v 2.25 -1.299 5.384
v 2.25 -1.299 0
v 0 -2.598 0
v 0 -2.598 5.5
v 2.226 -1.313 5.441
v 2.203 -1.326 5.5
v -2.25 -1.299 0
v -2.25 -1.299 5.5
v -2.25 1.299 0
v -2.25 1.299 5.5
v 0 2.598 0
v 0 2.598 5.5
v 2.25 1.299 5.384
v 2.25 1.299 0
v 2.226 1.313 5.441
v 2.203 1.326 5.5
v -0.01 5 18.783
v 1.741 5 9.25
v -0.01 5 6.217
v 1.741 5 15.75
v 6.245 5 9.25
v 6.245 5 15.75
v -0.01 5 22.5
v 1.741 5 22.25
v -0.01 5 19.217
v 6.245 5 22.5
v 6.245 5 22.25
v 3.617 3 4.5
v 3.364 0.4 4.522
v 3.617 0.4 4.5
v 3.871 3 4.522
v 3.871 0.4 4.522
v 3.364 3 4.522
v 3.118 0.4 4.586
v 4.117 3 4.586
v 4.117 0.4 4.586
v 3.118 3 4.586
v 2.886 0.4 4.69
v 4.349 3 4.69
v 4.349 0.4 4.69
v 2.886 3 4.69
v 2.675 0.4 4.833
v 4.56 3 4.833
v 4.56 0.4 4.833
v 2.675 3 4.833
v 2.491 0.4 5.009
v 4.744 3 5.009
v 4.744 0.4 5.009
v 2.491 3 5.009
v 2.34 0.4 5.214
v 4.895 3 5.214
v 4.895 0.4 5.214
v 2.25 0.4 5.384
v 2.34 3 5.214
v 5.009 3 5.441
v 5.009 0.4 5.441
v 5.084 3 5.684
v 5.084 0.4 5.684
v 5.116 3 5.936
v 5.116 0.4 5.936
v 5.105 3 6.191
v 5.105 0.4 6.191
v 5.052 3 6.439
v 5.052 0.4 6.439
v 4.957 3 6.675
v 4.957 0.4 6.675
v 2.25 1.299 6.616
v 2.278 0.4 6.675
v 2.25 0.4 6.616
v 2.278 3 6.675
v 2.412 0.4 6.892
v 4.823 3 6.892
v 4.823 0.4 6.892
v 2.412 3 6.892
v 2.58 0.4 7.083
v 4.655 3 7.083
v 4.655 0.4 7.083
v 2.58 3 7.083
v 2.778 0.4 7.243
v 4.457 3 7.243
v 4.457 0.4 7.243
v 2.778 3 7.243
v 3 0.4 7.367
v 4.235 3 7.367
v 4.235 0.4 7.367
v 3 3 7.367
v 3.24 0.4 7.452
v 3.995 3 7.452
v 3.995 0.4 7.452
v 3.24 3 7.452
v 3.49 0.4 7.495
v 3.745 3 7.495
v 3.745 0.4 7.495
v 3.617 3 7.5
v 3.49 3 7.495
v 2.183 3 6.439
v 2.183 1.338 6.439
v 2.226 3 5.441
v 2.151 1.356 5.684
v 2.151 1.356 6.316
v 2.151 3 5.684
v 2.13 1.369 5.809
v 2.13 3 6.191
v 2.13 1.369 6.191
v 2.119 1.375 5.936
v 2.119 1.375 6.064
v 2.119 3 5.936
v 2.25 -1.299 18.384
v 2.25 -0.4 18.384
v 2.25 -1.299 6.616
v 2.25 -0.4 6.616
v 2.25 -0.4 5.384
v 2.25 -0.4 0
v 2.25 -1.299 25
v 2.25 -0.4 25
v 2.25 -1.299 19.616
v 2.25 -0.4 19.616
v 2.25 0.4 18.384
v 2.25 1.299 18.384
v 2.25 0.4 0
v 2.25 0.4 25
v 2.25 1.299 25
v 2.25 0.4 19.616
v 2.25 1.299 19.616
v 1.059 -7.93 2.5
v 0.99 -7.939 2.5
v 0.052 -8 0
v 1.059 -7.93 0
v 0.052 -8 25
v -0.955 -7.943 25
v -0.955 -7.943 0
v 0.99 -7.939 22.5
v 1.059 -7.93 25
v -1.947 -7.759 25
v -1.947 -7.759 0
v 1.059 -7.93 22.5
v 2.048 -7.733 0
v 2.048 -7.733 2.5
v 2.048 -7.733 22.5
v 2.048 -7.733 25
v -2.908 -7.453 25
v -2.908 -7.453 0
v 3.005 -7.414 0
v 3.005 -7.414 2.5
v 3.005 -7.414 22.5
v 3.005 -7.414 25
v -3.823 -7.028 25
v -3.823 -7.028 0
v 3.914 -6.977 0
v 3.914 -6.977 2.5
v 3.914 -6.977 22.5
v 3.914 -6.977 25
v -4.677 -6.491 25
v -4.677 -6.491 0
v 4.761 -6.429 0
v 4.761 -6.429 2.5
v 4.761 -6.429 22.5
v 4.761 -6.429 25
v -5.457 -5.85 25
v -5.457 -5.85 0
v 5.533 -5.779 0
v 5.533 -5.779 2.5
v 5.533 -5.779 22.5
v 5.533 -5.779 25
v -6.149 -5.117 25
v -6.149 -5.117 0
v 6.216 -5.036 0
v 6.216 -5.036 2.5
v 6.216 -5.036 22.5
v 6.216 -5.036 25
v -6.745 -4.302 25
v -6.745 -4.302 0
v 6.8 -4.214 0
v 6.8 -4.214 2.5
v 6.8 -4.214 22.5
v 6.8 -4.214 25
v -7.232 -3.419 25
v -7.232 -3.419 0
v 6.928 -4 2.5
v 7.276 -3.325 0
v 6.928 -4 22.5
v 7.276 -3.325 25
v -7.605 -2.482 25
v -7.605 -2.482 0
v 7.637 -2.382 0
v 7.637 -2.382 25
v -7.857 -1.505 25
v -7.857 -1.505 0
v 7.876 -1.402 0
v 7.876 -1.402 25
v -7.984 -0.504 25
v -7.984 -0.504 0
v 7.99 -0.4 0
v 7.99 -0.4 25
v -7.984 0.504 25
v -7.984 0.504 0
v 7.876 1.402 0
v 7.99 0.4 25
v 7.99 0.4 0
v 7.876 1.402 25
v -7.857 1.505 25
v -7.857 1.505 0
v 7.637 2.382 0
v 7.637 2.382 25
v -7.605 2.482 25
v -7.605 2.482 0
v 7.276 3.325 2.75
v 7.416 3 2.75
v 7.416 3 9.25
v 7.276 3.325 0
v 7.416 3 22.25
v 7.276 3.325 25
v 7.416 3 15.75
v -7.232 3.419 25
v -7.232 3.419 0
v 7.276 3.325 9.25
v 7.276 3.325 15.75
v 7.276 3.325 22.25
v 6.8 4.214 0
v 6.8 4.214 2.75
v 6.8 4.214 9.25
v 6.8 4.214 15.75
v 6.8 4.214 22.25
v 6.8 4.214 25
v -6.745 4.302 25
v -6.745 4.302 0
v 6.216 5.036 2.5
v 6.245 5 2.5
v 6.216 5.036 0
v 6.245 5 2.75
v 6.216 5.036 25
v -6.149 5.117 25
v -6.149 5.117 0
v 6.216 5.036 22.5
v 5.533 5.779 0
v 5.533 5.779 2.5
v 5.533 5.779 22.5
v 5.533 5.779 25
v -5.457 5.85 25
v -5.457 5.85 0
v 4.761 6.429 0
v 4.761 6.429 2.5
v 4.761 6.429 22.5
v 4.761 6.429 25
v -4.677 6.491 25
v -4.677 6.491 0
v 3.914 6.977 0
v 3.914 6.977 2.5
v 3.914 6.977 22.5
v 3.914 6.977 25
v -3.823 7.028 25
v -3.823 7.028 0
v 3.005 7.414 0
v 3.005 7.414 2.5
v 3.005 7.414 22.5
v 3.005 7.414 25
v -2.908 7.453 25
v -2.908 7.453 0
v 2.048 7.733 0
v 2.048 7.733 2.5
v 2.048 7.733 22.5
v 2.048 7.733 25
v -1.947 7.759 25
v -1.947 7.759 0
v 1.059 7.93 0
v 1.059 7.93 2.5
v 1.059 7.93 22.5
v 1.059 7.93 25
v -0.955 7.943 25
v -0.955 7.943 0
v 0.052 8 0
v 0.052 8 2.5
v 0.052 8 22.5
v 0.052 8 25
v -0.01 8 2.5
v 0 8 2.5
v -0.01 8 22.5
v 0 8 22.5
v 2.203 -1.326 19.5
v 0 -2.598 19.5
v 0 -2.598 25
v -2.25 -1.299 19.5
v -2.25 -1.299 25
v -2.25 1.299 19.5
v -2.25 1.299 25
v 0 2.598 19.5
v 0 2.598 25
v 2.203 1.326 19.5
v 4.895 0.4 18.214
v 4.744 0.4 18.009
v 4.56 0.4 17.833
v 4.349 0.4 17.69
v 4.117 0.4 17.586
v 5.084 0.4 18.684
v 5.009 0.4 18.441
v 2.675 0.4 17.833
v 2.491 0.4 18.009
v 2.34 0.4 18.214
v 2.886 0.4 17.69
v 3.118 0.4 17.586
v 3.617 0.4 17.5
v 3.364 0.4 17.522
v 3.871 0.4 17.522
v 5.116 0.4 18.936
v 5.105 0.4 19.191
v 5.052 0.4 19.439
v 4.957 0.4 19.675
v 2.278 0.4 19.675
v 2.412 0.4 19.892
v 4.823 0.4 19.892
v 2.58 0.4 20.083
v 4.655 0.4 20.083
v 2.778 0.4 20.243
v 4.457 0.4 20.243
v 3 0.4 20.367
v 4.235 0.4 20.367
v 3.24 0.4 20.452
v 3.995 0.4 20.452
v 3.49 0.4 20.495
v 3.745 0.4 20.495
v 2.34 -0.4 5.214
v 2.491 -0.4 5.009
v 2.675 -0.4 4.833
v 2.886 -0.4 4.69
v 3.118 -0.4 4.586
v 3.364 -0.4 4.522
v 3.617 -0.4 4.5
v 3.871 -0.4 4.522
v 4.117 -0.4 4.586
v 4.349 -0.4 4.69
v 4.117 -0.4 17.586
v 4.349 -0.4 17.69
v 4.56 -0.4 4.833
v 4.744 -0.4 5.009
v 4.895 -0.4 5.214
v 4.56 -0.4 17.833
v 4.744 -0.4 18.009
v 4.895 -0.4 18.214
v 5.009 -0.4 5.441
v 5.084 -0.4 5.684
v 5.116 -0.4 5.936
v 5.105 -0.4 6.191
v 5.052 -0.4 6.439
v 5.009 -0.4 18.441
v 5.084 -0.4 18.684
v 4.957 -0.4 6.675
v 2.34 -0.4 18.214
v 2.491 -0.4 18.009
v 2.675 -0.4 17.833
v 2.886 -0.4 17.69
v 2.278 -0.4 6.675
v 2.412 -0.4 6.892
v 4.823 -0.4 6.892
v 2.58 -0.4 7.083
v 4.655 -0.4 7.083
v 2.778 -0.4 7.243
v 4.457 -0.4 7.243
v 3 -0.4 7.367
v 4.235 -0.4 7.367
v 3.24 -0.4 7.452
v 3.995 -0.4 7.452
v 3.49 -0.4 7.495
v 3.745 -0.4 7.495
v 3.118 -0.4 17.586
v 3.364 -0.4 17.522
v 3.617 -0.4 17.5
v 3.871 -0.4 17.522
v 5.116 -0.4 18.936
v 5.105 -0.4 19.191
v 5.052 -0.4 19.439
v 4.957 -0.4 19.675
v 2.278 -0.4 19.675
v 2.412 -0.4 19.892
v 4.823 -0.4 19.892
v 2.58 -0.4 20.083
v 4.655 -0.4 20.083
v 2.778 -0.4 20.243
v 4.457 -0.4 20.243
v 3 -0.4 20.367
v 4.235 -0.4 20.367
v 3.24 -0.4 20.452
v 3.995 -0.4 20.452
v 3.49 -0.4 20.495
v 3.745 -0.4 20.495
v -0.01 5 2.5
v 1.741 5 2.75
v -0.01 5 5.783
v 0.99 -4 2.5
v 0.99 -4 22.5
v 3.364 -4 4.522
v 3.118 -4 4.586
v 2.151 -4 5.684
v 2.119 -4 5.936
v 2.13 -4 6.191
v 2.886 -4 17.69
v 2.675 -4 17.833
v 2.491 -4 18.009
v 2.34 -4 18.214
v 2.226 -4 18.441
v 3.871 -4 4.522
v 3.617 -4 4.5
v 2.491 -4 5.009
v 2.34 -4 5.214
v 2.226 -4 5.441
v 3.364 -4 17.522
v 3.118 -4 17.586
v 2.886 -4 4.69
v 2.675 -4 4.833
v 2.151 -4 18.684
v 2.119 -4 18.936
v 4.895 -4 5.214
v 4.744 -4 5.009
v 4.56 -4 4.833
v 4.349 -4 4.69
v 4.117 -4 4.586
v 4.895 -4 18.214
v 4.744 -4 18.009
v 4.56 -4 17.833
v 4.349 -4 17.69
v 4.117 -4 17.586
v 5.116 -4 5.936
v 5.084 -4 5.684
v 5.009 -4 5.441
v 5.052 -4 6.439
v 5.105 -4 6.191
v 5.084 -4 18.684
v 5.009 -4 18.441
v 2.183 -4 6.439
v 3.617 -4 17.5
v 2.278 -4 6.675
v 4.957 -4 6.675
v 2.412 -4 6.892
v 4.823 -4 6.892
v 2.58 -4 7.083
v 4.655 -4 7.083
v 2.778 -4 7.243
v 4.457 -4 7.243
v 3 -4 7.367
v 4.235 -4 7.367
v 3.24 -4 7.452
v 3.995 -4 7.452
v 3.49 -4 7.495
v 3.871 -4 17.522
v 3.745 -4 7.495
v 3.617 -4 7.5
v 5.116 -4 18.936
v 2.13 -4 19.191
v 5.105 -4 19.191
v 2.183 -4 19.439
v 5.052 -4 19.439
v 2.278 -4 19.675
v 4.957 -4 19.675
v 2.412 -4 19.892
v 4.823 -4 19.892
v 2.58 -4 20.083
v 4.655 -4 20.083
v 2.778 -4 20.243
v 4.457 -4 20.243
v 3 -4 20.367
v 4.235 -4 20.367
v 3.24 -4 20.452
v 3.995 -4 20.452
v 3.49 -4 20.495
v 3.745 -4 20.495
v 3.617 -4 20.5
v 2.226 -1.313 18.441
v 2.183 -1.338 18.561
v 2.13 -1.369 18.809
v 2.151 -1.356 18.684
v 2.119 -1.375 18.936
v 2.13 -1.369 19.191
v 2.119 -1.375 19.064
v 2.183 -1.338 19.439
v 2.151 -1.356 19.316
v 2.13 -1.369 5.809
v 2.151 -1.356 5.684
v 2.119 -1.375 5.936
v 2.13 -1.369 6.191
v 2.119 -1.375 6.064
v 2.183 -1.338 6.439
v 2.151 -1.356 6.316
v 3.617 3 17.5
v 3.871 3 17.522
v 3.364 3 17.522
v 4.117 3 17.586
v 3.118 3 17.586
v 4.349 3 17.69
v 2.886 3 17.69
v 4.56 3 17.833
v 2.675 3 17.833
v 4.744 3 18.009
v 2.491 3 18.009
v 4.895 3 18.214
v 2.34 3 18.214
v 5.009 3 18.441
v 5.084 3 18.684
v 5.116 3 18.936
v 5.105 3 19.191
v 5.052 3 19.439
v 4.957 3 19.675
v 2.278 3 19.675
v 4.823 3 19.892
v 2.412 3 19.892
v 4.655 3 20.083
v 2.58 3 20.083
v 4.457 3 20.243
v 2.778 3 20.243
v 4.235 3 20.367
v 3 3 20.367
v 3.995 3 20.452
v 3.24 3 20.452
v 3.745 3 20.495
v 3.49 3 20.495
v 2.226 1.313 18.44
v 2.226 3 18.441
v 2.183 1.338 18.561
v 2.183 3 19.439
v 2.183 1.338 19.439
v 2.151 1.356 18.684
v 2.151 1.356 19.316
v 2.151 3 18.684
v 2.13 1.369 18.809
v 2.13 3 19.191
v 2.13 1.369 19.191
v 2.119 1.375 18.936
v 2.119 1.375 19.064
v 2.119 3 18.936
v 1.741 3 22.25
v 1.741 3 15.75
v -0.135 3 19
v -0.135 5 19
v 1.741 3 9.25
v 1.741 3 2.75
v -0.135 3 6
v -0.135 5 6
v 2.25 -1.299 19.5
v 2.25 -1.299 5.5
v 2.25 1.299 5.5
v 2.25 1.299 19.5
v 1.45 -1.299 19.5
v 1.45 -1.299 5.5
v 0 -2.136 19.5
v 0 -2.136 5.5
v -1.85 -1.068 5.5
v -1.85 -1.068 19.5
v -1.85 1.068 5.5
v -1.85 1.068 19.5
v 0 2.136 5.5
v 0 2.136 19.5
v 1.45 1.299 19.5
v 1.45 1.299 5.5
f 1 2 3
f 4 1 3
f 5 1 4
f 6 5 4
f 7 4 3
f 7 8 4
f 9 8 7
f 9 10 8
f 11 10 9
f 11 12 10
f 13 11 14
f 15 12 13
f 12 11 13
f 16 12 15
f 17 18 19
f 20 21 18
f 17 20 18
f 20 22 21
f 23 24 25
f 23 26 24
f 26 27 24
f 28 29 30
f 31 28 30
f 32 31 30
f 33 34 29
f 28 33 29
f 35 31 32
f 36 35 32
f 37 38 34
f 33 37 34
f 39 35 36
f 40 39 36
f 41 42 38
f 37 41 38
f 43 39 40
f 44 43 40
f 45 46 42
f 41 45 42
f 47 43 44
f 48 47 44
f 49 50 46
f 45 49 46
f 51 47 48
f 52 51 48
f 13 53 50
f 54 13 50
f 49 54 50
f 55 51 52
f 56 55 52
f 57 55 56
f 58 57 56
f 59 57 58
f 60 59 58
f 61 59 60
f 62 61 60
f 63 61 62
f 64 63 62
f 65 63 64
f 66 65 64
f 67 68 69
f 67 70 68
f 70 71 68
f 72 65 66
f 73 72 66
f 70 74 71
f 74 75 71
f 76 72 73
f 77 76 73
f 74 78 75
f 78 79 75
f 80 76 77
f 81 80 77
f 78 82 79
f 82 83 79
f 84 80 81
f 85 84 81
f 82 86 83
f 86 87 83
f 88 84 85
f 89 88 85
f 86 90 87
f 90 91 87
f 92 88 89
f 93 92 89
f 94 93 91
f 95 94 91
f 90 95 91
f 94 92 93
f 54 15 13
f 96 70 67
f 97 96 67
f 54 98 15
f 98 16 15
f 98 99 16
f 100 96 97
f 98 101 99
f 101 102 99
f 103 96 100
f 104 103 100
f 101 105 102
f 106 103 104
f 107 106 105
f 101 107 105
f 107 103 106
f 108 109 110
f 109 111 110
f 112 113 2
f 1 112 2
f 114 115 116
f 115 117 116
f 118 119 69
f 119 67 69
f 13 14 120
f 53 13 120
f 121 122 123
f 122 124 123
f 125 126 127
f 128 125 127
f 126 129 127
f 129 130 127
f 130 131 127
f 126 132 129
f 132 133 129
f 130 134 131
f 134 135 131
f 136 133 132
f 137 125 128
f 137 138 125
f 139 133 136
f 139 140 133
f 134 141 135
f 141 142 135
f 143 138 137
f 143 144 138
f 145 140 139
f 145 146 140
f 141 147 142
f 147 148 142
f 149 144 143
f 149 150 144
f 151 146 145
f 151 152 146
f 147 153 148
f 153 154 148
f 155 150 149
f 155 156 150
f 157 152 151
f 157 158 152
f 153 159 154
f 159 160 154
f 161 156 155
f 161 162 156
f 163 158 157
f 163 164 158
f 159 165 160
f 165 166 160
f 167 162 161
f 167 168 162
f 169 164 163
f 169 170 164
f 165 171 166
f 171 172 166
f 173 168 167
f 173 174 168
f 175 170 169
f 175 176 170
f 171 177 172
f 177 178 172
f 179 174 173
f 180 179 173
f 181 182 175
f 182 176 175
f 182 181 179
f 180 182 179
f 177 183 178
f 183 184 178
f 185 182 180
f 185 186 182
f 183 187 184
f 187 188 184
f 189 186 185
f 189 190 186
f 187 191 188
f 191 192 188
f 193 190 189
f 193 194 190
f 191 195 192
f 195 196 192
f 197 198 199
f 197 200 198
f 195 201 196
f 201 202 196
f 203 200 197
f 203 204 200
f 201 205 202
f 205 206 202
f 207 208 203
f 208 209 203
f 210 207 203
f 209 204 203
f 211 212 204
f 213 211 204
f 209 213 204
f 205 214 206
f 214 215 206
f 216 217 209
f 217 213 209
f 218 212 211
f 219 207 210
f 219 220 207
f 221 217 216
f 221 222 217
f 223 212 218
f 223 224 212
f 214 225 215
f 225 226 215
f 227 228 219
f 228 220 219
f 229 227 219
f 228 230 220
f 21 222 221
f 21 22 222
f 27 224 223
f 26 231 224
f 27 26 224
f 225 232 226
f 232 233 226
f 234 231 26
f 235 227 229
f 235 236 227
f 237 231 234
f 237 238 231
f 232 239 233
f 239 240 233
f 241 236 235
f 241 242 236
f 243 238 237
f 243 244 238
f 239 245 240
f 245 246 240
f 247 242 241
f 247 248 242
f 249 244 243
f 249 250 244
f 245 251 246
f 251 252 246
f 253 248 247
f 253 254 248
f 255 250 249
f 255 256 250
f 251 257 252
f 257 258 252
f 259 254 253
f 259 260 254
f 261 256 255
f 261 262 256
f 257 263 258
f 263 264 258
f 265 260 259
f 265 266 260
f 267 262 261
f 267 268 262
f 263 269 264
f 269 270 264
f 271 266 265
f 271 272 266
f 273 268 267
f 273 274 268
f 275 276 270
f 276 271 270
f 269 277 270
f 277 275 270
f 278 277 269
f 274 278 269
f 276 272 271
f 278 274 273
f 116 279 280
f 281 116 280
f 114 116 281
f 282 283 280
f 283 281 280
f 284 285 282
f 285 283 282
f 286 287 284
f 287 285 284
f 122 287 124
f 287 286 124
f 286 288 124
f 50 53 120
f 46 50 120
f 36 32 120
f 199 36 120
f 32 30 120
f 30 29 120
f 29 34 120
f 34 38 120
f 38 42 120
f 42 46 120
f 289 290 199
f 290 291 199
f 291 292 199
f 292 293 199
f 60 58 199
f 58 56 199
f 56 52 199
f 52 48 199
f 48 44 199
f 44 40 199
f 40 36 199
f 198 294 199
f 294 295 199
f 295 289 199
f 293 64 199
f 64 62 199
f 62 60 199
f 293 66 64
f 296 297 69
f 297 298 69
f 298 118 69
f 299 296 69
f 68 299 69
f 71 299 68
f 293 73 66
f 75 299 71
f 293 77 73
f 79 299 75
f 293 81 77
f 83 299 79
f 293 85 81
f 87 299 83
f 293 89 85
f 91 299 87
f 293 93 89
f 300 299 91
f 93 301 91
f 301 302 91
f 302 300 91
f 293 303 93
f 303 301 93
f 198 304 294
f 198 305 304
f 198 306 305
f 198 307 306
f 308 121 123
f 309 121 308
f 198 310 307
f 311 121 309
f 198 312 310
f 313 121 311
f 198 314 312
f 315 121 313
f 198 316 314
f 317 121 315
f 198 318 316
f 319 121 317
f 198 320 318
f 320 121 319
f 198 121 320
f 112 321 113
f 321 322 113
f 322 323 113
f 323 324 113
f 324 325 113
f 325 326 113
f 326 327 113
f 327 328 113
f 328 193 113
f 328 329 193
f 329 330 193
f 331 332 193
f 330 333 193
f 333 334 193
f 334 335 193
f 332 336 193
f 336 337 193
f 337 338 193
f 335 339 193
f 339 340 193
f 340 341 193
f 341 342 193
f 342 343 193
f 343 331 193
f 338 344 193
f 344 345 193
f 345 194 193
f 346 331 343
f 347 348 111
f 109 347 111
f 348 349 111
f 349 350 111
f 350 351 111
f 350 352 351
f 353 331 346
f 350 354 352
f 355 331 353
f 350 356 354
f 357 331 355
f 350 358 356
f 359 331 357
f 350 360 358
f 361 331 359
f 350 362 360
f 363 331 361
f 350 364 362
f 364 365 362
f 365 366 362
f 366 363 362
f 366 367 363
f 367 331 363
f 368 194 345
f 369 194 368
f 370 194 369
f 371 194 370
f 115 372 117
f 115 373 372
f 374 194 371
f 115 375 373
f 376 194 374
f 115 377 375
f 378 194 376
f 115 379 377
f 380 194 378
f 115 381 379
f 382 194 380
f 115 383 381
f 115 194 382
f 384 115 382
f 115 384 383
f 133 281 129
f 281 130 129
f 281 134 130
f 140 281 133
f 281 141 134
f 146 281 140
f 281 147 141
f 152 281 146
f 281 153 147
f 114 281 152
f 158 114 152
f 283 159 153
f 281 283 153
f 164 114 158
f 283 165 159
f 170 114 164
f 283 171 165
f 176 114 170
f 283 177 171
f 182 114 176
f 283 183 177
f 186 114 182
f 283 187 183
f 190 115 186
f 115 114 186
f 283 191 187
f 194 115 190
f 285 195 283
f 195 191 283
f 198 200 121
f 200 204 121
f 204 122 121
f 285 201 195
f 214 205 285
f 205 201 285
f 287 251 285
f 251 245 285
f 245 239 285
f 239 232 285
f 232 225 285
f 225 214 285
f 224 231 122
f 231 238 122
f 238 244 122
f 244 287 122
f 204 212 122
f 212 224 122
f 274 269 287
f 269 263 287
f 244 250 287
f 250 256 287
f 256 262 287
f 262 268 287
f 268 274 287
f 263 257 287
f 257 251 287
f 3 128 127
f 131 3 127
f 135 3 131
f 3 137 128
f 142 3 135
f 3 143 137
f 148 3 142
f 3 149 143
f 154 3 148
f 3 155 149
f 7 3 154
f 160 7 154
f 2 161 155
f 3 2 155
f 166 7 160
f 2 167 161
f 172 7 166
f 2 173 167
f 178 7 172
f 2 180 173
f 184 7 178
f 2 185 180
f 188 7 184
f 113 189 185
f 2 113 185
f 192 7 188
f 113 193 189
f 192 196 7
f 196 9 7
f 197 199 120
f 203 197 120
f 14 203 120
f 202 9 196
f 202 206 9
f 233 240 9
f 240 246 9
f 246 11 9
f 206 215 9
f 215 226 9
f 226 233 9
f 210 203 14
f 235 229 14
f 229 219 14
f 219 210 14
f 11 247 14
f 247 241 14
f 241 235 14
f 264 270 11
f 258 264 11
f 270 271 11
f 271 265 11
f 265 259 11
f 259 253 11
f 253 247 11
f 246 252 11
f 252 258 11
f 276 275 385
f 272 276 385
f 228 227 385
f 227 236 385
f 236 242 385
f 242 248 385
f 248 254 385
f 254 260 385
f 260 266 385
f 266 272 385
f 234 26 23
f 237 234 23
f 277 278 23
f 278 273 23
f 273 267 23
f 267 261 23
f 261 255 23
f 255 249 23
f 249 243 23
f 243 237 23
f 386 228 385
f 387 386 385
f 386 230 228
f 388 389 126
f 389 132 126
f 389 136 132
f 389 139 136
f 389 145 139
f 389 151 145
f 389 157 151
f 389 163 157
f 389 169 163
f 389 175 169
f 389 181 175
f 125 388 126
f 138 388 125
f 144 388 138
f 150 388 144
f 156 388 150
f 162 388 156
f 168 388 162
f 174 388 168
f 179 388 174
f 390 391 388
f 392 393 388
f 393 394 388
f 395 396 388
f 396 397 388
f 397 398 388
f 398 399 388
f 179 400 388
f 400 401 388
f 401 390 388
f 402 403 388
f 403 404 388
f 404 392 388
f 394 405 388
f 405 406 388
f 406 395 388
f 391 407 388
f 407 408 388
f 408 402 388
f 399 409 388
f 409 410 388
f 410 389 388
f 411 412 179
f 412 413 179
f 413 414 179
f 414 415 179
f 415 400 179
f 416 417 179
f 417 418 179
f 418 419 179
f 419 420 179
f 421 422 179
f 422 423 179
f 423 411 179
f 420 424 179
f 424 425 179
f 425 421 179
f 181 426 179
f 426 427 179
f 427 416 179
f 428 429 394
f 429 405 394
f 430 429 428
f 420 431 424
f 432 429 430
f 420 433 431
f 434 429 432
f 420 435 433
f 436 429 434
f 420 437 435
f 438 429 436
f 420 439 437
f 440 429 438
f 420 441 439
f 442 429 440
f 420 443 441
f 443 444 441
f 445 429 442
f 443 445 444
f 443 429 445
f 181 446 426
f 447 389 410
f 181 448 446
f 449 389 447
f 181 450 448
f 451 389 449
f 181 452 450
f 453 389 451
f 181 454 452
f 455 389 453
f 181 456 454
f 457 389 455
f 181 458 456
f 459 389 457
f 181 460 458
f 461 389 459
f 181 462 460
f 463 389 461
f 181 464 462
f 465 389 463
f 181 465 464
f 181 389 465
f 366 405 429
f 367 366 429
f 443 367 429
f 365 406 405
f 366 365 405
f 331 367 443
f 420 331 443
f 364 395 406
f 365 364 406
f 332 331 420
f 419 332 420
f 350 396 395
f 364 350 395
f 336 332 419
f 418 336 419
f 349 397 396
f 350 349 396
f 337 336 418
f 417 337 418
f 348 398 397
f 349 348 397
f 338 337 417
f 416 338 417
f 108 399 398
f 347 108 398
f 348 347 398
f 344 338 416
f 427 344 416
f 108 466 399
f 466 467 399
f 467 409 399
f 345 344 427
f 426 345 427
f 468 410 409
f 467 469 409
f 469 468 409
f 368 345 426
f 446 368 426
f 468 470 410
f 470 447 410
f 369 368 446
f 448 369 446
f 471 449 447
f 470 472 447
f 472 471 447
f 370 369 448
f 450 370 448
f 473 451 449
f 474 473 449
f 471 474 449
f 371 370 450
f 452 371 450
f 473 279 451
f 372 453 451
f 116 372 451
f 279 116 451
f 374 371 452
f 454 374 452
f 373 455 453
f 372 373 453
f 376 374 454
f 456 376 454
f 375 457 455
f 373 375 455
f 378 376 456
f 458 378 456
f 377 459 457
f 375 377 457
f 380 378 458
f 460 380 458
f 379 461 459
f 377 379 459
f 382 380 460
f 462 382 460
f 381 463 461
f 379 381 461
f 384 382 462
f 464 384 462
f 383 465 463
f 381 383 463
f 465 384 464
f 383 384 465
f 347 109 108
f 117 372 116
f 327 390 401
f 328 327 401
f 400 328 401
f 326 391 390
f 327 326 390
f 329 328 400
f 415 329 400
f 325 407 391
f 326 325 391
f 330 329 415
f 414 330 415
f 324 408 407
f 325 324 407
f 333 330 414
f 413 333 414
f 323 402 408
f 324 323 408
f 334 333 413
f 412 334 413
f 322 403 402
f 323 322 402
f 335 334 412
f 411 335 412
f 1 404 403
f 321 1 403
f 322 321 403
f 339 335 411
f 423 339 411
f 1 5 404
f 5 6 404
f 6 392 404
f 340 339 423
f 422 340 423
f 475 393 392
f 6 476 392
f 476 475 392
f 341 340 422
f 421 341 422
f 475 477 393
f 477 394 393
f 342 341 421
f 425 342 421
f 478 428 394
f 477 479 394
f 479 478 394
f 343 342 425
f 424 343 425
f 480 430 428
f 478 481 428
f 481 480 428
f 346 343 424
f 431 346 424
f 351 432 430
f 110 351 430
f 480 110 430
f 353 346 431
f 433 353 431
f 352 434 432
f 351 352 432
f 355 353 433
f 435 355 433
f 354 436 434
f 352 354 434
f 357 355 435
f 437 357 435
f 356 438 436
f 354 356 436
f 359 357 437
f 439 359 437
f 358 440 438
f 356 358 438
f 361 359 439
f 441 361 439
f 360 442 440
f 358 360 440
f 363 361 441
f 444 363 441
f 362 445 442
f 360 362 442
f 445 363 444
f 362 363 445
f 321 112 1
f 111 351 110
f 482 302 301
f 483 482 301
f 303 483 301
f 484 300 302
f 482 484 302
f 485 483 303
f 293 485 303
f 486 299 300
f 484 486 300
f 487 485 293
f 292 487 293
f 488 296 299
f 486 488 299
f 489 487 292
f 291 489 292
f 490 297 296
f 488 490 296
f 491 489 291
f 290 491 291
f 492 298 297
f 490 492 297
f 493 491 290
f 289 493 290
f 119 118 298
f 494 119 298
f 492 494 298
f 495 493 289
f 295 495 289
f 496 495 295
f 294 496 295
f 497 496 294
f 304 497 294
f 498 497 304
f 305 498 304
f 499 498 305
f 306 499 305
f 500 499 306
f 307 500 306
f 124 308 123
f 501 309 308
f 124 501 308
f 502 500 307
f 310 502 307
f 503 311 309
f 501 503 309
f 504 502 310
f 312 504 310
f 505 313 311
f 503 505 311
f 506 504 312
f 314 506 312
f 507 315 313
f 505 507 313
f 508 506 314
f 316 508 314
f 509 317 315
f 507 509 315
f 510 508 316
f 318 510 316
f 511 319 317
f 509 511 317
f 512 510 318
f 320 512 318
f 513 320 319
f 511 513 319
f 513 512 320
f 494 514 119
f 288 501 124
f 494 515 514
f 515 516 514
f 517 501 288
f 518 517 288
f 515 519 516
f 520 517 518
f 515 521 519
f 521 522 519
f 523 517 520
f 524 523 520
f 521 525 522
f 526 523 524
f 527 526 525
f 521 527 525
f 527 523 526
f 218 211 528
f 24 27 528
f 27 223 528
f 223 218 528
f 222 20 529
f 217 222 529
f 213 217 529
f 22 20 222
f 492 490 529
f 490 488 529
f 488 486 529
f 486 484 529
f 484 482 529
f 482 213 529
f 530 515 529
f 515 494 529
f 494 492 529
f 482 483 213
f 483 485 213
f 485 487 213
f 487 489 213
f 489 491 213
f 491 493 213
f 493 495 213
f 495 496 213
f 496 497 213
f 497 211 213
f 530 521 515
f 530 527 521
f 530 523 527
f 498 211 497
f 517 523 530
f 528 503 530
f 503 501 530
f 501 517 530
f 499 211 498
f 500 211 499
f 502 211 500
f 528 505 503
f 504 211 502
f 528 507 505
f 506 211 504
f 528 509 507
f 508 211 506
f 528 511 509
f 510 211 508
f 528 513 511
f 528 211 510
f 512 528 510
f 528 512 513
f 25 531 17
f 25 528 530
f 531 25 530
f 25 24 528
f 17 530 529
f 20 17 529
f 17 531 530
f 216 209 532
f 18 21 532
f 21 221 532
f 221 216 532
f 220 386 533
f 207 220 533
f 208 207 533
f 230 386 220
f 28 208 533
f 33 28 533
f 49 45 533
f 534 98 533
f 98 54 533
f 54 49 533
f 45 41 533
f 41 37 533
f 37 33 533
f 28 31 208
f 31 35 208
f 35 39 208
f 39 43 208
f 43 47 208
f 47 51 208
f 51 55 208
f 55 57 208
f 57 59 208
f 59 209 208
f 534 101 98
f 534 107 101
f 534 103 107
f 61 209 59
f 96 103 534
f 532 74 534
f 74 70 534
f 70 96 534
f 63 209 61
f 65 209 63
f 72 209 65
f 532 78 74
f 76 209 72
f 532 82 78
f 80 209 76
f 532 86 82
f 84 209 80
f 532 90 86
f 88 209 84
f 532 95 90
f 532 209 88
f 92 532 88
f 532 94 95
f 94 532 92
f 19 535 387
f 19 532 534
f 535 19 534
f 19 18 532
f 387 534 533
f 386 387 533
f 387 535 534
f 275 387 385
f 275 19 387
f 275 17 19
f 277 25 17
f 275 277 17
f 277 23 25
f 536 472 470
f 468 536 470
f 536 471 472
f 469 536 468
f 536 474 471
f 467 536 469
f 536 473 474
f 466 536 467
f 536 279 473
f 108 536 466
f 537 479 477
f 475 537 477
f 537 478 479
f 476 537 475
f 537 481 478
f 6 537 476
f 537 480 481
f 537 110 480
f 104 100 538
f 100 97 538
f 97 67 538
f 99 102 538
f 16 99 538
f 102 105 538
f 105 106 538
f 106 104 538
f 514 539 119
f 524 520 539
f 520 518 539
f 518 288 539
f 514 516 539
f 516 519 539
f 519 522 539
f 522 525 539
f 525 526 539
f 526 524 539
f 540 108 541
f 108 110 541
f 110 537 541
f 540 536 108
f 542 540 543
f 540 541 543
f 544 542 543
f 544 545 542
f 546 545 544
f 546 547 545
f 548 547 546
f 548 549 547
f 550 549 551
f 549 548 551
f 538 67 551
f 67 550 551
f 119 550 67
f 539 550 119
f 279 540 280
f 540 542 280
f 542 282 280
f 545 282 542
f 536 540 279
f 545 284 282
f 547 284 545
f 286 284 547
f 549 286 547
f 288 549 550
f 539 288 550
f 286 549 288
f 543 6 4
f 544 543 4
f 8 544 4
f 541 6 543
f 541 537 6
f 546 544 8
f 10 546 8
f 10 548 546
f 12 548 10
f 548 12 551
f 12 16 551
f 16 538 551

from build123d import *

# Parameters (mm, degrees)
RESSALTO_EXTRUS_O2_DEPTH = 25
ESBO_O3_W                = 7
ESBO_O3_H                = 20
CORTE_EXTRUS_O1_DEPTH    = 3
ESBO_O4_W                = 9.984895554
ESBO_O4_H                = 20
CORTE_EXTRUS_O2_DEPTH    = 4
ESBO_O5_R                = 1.5
CORTE_EXTRUS_O7_DEPTH    = 31.740852298
CORTE_EXTRUS_O8_DEPTH    = 3
CORTE_EXTRUS_O9_DEPTH    = 2
CORTE_EXTRUS_O11_DEPTH   = 3
RESSALTO_EXTRUS_O4_DEPTH = 7


with BuildPart() as part:
    # Esboço1 → Ressalto-extrusão2 (new body)
    with BuildSketch(Plane.XY):
        with BuildLine():
            Line((2.25, -0.4), (5.986651819, -0.4))
            Line((5.986651819, -0.4), (7.989993742, -0.4))
            ThreePointArc((7.989993742, -0.4), (-8, 0), (7.989993742, 0.4))
            Line((7.989993742, 0.4), (5.986651819, 0.4))
            Line((5.986651819, 0.4), (2.25, 0.4))
            Line((2.25, 0.4), (2.25, 1.299038106))
            Line((2.25, 1.299038106), (0, 2.598076211))
            Line((0, 2.598076211), (-2.25, 1.299038106))
            Line((-2.25, 1.299038106), (-2.25, -1.299038106))
            Line((-2.25, -1.299038106), (0, -2.598076211))
            Line((0, -2.598076211), (2.25, -1.299038106))
            Line((2.25, -1.299038106), (2.25, -0.4))
        make_face()
    extrude(amount=RESSALTO_EXTRUS_O2_DEPTH)

    # Esboço3 → Corte-extrusão1 (cut)
    with BuildSketch(Plane(origin=(0, 8, 0), x_dir=(1, 0, 0), z_dir=(0, 1, 0))):
        with Locations((4.489993742, -12.5)):
            Rectangle(ESBO_O3_W, ESBO_O3_H)
    extrude(amount=-CORTE_EXTRUS_O1_DEPTH, mode=Mode.SUBTRACT)

    # Esboço4 → Corte-extrusão2 (cut)
    with BuildSketch(Plane(origin=(0, -8, 0), x_dir=(1, 0, 0), z_dir=(0, 1, 0))):
        with Locations((5.982441519, -12.5)):
            Rectangle(ESBO_O4_W, ESBO_O4_H)
    extrude(amount=CORTE_EXTRUS_O2_DEPTH, mode=Mode.SUBTRACT)

    # Esboço5 → Corte-extrusão7 (cut, through all)
    with BuildSketch(Plane(origin=(0, -8, 0), x_dir=(1, 0, 0), z_dir=(0, 1, 0))):
        with Locations(Location((3.61749587, -6, 0), (0, 0, 155.736314367))):
            Circle(ESBO_O5_R)
        with Locations(Location((3.61749587, -19, 0), (0, 0, 155.736314367))):
            Circle(ESBO_O5_R)
    extrude(amount=CORTE_EXTRUS_O7_DEPTH, mode=Mode.SUBTRACT)

    # Esboço11 → Corte-extrusão8 (cut)
    with BuildSketch(Plane(origin=(0, 8, 0), x_dir=(1, 0, 0), z_dir=(0, 1, 0))):
        Polygon((0.989993742, -2.5), (0.489993742, -2.5), (0.489993742, -22.5), (0.989993742, -22.5), (12.059858903, -22.5), (12.059858903, -2.5), align=None)
    extrude(amount=-CORTE_EXTRUS_O8_DEPTH, mode=Mode.SUBTRACT)

    # Esboço12 → Corte-extrusão9 (cut)
    with BuildSketch(Plane(origin=(0, 5, 0), x_dir=(1, 0, 0), z_dir=(0, 1, 0))):
        Polygon((5.493884245, -9.25), (10.492692387, -9.25), (10.492692387, -2.75), (5.493884245, -2.75), (1.741107495, -2.75), (-0.135280879, -6), (1.741107495, -9.25), align=None)
        Polygon((5.493884245, -15.75), (1.741107495, -15.75), (-0.135280879, -19), (1.741107495, -22.25), (5.493884245, -22.25), (10.492692387, -22.25), (10.492692387, -15.75), align=None)
    extrude(amount=-CORTE_EXTRUS_O9_DEPTH, mode=Mode.SUBTRACT)

    # Esboço13 → Corte-extrusão11 (cut)
    with BuildSketch(Plane(origin=(0, 8, 0), x_dir=(1, 0, 0), z_dir=(0, 1, 0))):
        Polygon((0.489993742, -2.5), (-0.010006258, -2.5), (-0.010006258, -22.5), (0.489993742, -22.5), (15.48114744, -22.5), (15.48114744, -2.5), align=None)
    extrude(amount=-CORTE_EXTRUS_O11_DEPTH, mode=Mode.SUBTRACT)

    # Esboço14 → Ressalto-extrusão4 (add, symmetric)
    with BuildSketch(Plane.XY.offset(12.5)):
        Polygon((0, -2.598076211), (2.25, -1.299038106), (1.45, -1.299038106), (0, -2.136195996), (-1.85, -1.068097998), (-1.85, 1.068097998), (0, 2.136195996), (1.45, 1.299038106), (2.25, 1.299038106), (0, 2.598076211), (-2.25, 1.299038106), (-2.25, -1.299038106), align=None)
    extrude(amount=RESSALTO_EXTRUS_O4_DEPTH, both=True)


solid = part.part
